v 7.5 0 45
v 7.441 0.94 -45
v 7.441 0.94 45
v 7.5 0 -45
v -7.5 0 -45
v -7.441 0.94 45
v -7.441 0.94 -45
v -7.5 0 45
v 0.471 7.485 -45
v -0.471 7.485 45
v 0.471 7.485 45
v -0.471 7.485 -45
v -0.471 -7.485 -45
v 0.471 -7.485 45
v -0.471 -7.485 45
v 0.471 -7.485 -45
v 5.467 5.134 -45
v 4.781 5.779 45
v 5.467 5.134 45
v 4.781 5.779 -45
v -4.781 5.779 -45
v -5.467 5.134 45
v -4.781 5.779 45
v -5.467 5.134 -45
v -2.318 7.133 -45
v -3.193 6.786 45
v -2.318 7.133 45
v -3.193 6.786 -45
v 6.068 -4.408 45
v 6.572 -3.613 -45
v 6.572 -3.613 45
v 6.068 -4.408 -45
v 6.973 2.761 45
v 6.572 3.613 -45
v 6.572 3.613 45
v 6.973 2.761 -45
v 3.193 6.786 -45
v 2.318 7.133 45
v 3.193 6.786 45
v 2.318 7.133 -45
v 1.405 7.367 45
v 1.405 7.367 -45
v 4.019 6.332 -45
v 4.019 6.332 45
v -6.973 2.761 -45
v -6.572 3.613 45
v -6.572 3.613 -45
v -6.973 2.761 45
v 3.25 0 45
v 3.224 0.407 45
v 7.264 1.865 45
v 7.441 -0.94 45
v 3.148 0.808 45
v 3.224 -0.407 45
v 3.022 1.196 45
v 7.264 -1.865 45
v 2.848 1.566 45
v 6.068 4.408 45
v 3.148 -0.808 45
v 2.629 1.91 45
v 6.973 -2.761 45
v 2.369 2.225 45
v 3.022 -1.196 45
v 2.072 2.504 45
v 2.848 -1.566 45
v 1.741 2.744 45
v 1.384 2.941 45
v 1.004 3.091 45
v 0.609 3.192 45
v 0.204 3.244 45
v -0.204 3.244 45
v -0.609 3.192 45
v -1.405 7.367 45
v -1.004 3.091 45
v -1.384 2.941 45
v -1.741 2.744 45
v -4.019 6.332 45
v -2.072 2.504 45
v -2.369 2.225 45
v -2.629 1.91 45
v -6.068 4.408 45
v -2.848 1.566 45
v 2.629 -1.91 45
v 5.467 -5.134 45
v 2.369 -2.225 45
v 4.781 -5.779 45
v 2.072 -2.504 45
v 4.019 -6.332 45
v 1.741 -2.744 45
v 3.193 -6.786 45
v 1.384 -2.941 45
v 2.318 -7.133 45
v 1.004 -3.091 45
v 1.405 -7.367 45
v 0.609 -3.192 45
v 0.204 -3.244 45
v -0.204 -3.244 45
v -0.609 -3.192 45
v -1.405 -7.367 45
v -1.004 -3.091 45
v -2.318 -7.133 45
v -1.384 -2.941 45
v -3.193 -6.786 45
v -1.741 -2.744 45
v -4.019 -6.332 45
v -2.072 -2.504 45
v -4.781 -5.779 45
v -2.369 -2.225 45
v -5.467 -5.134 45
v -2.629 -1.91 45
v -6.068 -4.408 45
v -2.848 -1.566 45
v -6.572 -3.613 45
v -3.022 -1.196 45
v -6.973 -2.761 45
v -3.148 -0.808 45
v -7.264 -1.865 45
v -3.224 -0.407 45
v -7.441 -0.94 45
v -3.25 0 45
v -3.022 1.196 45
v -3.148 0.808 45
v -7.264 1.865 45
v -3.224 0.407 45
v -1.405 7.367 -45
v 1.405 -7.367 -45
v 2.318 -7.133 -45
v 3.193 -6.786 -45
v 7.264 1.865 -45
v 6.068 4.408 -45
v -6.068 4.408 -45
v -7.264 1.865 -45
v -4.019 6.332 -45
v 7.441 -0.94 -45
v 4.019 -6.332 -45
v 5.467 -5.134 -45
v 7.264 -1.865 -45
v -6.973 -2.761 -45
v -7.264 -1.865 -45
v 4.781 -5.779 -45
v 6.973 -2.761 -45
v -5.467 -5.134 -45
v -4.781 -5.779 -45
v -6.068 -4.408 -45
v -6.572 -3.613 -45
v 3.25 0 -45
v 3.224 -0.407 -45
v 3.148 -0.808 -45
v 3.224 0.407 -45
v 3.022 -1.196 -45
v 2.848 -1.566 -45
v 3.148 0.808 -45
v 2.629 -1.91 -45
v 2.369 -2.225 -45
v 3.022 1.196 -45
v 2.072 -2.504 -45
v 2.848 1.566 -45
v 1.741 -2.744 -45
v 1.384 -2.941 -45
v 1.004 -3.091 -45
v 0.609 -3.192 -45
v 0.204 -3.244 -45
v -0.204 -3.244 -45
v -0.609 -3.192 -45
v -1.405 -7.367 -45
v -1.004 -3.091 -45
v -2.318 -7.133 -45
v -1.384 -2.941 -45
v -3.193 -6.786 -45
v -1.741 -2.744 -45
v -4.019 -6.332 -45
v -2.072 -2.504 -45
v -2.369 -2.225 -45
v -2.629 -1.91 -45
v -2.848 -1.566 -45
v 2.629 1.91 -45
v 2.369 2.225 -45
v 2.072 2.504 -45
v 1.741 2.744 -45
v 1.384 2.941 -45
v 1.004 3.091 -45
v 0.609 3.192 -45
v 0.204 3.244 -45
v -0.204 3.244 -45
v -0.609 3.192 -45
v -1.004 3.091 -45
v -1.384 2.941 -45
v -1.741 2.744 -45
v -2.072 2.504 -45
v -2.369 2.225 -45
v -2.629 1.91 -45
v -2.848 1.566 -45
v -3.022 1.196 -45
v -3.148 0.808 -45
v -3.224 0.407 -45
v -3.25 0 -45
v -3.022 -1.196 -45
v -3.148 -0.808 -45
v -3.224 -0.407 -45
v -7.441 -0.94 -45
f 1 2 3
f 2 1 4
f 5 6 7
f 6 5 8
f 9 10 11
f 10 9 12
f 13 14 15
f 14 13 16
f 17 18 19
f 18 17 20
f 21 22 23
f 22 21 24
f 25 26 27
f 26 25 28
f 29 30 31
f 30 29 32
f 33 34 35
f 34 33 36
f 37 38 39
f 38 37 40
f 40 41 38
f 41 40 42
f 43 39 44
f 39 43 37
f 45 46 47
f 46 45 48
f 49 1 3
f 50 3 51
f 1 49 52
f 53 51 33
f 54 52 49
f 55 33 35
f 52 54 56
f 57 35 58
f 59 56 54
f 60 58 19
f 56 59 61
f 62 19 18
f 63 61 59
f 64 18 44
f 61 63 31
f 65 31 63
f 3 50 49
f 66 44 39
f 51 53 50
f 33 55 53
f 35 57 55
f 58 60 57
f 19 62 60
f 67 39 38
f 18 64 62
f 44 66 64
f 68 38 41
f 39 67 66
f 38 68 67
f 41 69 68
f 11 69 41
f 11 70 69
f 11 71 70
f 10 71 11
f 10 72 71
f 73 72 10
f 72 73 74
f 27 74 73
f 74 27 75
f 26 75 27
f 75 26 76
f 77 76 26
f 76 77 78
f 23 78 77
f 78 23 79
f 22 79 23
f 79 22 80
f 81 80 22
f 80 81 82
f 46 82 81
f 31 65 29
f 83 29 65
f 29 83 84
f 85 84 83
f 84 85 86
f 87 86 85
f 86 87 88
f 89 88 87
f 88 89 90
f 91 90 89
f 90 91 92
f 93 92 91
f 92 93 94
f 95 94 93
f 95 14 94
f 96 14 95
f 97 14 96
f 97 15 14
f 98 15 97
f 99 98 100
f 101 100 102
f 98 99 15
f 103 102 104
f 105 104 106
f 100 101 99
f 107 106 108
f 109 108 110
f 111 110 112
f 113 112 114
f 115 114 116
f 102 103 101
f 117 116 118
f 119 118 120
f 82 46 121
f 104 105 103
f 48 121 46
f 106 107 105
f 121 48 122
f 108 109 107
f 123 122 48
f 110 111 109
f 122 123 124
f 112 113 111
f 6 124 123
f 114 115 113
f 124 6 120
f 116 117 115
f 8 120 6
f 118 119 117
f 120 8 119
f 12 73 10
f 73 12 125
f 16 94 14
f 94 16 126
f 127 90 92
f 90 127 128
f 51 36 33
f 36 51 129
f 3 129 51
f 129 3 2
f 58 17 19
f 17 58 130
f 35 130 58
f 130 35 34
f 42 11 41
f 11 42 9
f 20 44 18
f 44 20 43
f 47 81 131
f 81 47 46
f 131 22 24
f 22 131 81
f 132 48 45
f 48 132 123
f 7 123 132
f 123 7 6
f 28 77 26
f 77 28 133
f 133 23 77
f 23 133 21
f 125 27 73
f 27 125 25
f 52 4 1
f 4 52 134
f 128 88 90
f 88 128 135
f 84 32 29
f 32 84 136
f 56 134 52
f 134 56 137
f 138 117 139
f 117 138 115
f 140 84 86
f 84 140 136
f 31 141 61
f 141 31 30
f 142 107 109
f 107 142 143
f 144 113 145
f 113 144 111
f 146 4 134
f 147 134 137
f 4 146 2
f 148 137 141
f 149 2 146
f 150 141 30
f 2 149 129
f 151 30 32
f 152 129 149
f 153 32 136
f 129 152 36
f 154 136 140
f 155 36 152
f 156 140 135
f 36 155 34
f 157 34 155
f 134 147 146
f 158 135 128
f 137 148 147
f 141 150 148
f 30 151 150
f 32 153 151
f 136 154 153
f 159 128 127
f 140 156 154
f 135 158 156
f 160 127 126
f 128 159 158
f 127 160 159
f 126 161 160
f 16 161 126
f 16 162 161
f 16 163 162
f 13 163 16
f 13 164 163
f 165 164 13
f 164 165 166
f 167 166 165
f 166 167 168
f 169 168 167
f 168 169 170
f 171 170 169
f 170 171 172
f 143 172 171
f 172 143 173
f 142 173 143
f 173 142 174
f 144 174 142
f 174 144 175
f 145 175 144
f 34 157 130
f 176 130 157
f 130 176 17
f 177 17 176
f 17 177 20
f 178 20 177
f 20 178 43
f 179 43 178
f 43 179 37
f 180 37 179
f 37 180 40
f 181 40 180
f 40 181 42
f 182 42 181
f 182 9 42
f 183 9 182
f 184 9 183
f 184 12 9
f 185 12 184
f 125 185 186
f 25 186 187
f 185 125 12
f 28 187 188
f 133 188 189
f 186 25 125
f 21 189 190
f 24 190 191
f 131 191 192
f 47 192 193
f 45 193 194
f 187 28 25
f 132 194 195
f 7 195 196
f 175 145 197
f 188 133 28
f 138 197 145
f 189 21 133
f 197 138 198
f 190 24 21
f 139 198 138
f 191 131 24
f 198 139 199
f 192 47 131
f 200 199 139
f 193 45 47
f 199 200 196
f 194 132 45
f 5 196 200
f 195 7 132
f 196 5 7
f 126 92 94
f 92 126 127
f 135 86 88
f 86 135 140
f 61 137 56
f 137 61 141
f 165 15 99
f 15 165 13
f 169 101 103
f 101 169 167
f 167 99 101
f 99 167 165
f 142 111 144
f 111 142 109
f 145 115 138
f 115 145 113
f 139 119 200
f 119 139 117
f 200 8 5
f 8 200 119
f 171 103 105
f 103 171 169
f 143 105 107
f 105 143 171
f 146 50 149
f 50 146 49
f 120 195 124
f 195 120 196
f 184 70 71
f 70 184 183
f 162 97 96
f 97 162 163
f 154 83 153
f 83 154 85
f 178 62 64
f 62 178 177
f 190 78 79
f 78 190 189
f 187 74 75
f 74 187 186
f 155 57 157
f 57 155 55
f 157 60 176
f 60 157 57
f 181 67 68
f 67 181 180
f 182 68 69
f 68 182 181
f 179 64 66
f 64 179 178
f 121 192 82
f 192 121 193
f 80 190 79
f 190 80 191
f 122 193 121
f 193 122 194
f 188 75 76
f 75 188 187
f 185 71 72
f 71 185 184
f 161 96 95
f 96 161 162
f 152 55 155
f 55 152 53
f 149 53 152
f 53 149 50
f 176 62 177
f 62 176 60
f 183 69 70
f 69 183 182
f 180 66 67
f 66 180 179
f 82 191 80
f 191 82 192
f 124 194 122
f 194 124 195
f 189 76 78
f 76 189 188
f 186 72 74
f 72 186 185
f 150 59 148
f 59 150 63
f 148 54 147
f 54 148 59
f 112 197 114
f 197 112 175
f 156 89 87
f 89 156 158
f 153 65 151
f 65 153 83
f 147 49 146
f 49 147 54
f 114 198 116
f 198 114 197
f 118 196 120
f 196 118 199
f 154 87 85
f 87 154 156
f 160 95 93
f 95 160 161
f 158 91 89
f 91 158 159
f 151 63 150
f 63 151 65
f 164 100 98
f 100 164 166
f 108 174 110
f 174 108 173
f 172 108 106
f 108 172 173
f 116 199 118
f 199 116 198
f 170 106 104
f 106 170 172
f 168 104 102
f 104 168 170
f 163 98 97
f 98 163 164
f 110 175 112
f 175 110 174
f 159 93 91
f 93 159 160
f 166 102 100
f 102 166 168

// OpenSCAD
$fn = 50;


difference() {
	union() {
		translate(v = [0, 0, -45.0000000000]) {
			cylinder(h = 90, r = 7.5000000000);
		}
	}
	union() {
		translate(v = [0, 0, -100.0000000000]) {
			cylinder(h = 200, r = 3.2500000000);
		}
	}
}
